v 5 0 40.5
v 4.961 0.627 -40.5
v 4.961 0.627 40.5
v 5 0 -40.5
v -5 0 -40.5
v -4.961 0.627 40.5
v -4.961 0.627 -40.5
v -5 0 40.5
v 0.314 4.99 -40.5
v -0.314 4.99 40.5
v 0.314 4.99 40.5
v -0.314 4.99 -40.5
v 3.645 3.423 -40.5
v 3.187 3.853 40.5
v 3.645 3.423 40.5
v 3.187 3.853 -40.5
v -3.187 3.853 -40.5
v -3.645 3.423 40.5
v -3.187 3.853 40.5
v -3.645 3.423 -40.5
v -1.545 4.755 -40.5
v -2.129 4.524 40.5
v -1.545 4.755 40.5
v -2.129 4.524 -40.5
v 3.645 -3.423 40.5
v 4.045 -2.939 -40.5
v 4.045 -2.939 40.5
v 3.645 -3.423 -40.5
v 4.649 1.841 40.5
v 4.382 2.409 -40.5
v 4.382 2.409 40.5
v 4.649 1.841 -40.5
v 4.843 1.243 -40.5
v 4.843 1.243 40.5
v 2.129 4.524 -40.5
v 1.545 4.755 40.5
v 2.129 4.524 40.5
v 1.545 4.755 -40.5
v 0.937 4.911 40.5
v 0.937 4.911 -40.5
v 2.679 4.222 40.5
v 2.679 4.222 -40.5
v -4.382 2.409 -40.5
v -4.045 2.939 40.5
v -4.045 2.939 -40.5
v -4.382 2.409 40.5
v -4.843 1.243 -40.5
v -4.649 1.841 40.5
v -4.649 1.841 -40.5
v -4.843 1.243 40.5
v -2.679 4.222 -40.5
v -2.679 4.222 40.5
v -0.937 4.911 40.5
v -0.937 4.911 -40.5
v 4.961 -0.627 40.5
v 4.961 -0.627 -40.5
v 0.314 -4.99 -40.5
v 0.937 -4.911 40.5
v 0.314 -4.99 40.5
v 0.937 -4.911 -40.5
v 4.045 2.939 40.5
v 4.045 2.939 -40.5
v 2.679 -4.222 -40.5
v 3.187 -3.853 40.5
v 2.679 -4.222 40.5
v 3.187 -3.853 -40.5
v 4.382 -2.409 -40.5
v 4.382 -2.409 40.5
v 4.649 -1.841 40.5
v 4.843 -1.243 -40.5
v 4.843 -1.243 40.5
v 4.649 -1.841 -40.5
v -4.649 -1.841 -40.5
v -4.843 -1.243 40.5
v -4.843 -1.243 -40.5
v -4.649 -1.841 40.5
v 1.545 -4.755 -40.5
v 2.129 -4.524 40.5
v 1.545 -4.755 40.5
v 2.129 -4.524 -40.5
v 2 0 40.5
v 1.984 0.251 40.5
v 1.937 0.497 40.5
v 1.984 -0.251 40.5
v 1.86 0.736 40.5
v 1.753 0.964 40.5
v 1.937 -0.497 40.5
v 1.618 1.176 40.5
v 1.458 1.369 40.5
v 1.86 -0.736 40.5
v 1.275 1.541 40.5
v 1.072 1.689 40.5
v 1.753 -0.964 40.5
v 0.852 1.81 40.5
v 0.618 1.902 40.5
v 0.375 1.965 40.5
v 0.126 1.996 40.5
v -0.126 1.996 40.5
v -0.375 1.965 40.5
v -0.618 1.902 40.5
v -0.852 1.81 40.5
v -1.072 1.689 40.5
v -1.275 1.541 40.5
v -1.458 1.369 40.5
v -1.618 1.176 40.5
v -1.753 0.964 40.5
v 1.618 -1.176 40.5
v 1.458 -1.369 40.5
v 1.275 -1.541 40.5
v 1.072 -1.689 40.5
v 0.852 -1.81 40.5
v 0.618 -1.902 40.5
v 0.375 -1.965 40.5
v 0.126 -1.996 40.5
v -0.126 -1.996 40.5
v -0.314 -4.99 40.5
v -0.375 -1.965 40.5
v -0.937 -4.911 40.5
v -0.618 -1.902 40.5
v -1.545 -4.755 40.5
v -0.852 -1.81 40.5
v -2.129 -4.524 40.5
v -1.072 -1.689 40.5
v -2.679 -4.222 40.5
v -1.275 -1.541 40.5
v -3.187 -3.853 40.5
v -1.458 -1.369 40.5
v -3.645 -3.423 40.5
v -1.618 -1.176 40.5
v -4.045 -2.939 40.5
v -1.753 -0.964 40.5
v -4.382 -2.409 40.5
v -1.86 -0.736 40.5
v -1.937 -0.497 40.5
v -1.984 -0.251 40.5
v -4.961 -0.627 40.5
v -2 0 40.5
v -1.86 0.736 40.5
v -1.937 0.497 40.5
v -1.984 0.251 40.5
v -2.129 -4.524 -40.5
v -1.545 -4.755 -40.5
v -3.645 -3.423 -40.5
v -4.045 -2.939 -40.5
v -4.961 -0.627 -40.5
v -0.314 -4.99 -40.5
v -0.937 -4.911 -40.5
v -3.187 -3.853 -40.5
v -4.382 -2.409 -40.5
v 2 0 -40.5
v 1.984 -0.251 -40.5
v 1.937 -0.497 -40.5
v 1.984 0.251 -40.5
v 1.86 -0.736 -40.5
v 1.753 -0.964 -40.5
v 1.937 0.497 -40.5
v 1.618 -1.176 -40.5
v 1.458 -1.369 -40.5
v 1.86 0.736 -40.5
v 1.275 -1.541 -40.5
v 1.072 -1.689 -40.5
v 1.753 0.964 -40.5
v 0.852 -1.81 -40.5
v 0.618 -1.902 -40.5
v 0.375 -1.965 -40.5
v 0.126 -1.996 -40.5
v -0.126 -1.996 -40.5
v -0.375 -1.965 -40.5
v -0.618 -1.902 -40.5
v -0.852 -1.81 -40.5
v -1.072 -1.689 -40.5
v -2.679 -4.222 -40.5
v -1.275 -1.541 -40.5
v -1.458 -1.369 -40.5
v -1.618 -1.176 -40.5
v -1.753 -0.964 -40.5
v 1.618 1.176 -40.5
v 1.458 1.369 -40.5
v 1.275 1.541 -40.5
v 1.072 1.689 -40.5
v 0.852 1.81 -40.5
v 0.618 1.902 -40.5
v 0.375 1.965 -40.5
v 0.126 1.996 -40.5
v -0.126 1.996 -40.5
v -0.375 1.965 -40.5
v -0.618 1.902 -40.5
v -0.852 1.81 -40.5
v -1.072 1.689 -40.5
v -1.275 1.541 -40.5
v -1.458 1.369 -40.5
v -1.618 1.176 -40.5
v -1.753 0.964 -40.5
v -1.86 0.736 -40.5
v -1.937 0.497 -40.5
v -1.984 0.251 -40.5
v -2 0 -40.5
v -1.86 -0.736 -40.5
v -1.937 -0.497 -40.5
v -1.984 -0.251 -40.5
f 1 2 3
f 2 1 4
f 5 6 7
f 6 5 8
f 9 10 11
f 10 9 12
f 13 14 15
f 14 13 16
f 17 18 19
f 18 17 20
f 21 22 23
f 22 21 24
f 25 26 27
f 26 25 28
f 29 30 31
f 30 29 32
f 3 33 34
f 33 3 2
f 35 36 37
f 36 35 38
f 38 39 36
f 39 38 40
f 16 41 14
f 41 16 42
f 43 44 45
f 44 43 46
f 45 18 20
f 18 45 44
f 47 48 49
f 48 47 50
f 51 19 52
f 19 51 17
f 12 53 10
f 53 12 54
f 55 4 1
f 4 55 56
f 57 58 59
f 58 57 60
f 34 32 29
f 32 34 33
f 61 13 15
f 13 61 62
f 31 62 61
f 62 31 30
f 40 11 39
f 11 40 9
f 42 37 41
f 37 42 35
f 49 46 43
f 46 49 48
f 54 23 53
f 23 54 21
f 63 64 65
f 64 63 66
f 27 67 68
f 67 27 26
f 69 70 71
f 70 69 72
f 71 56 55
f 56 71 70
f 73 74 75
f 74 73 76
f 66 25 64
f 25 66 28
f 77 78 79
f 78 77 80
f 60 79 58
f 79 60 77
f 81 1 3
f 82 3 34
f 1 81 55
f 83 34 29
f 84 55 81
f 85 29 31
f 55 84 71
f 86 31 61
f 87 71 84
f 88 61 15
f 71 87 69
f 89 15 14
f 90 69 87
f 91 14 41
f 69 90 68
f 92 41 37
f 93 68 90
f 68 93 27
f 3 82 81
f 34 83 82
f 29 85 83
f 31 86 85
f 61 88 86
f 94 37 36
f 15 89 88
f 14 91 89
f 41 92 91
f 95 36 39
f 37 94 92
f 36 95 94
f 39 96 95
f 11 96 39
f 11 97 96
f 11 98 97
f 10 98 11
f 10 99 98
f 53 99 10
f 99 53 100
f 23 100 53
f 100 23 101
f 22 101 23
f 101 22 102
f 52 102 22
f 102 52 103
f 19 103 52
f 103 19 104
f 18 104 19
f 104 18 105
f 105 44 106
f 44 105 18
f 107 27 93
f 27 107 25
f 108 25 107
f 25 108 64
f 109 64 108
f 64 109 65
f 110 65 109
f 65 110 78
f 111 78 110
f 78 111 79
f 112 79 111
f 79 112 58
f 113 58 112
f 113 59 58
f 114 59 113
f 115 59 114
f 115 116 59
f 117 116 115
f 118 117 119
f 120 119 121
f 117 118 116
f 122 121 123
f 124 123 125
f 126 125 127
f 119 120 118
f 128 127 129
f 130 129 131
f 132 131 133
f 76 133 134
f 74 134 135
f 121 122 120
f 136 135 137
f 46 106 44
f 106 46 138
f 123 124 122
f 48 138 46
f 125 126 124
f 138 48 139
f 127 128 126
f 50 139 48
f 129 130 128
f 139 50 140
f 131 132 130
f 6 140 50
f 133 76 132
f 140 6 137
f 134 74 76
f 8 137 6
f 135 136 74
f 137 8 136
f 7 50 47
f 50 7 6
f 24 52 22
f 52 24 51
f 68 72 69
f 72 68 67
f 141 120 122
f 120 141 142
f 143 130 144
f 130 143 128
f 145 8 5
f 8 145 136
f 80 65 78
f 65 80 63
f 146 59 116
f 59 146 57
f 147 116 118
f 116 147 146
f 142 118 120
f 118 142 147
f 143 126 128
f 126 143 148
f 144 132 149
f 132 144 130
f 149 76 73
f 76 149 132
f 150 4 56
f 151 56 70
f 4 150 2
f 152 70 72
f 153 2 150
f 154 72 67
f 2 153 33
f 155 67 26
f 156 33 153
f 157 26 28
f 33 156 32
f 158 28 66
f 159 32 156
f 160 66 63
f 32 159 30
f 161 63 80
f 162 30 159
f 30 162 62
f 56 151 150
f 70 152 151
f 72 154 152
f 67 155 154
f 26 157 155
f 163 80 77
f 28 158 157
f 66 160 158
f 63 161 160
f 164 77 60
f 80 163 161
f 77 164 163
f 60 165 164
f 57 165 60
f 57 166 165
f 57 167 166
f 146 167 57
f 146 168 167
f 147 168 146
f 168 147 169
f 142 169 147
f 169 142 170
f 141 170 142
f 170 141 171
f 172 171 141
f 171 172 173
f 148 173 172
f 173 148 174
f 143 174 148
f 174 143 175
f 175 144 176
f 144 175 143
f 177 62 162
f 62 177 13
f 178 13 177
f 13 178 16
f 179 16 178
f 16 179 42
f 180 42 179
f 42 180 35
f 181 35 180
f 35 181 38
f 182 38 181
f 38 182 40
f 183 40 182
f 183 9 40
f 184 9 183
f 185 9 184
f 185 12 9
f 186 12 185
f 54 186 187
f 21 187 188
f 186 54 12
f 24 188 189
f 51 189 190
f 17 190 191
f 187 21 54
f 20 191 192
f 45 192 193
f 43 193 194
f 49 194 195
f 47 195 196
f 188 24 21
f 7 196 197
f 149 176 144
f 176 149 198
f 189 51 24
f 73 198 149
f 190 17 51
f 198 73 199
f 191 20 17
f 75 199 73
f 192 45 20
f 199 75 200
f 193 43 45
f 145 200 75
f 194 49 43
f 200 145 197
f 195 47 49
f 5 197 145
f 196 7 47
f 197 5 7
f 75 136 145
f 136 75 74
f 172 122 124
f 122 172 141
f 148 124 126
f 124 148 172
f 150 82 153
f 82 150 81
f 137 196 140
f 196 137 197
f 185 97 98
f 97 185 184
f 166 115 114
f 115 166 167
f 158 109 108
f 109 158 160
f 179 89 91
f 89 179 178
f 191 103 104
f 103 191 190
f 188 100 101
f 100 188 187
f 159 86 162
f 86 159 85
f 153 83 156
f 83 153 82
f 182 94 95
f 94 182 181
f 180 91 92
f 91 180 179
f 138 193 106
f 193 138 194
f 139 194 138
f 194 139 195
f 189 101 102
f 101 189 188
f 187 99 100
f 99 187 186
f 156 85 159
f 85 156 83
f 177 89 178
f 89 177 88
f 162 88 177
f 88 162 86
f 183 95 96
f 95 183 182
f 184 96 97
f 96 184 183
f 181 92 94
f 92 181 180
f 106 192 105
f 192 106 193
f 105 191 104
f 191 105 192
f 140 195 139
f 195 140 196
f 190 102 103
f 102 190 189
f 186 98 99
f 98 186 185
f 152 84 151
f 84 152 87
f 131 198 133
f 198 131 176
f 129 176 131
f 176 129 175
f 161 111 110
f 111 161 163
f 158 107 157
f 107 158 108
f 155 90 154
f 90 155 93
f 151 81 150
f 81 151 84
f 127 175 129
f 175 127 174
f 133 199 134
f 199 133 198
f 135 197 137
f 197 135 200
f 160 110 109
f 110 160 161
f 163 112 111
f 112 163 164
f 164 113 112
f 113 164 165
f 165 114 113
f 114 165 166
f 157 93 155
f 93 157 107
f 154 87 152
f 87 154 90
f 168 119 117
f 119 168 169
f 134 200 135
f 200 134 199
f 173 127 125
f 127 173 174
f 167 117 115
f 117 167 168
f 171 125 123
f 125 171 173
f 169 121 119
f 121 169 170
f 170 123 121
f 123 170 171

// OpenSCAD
$fn = 50;


difference() {
	union() {
		translate(v = [0, 0, -40.5000000000]) {
			cylinder(h = 81, r = 5.0000000000);
		}
	}
	union() {
		translate(v = [0, 0, -100.0000000000]) {
			cylinder(h = 200, r = 2.0000000000);
		}
	}
}
